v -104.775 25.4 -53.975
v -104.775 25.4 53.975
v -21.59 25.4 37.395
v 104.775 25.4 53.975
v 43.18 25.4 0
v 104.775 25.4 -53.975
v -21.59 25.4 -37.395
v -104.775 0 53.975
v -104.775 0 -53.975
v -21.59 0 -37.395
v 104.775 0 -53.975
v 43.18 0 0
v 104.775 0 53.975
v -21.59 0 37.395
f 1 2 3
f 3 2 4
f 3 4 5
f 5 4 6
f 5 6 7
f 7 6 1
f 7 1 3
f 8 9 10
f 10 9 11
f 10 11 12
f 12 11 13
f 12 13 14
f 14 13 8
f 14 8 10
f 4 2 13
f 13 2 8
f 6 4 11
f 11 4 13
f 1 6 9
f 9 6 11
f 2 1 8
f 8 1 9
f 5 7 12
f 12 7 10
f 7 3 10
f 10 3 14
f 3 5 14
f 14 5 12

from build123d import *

# Parameters (mm, degrees)
SKETCH1_W           = 209.55
SKETCH1_H           = 107.95
BOSS_EXTRUDE1_DEPTH = 25.4


with BuildPart() as part:
    # Sketch1 → Boss-Extrude1 (new body)
    with BuildSketch(Plane(origin=(0, 0, 0), x_dir=(1, 0, 0), z_dir=(0, 1, 0))):
        Rectangle(SKETCH1_W, SKETCH1_H)
        Polygon((-21.59, 37.394976935), (-21.59, -37.394976935), (43.18, 0), align=None, mode=Mode.SUBTRACT)
    extrude(amount=BOSS_EXTRUDE1_DEPTH)


solid = part.part
